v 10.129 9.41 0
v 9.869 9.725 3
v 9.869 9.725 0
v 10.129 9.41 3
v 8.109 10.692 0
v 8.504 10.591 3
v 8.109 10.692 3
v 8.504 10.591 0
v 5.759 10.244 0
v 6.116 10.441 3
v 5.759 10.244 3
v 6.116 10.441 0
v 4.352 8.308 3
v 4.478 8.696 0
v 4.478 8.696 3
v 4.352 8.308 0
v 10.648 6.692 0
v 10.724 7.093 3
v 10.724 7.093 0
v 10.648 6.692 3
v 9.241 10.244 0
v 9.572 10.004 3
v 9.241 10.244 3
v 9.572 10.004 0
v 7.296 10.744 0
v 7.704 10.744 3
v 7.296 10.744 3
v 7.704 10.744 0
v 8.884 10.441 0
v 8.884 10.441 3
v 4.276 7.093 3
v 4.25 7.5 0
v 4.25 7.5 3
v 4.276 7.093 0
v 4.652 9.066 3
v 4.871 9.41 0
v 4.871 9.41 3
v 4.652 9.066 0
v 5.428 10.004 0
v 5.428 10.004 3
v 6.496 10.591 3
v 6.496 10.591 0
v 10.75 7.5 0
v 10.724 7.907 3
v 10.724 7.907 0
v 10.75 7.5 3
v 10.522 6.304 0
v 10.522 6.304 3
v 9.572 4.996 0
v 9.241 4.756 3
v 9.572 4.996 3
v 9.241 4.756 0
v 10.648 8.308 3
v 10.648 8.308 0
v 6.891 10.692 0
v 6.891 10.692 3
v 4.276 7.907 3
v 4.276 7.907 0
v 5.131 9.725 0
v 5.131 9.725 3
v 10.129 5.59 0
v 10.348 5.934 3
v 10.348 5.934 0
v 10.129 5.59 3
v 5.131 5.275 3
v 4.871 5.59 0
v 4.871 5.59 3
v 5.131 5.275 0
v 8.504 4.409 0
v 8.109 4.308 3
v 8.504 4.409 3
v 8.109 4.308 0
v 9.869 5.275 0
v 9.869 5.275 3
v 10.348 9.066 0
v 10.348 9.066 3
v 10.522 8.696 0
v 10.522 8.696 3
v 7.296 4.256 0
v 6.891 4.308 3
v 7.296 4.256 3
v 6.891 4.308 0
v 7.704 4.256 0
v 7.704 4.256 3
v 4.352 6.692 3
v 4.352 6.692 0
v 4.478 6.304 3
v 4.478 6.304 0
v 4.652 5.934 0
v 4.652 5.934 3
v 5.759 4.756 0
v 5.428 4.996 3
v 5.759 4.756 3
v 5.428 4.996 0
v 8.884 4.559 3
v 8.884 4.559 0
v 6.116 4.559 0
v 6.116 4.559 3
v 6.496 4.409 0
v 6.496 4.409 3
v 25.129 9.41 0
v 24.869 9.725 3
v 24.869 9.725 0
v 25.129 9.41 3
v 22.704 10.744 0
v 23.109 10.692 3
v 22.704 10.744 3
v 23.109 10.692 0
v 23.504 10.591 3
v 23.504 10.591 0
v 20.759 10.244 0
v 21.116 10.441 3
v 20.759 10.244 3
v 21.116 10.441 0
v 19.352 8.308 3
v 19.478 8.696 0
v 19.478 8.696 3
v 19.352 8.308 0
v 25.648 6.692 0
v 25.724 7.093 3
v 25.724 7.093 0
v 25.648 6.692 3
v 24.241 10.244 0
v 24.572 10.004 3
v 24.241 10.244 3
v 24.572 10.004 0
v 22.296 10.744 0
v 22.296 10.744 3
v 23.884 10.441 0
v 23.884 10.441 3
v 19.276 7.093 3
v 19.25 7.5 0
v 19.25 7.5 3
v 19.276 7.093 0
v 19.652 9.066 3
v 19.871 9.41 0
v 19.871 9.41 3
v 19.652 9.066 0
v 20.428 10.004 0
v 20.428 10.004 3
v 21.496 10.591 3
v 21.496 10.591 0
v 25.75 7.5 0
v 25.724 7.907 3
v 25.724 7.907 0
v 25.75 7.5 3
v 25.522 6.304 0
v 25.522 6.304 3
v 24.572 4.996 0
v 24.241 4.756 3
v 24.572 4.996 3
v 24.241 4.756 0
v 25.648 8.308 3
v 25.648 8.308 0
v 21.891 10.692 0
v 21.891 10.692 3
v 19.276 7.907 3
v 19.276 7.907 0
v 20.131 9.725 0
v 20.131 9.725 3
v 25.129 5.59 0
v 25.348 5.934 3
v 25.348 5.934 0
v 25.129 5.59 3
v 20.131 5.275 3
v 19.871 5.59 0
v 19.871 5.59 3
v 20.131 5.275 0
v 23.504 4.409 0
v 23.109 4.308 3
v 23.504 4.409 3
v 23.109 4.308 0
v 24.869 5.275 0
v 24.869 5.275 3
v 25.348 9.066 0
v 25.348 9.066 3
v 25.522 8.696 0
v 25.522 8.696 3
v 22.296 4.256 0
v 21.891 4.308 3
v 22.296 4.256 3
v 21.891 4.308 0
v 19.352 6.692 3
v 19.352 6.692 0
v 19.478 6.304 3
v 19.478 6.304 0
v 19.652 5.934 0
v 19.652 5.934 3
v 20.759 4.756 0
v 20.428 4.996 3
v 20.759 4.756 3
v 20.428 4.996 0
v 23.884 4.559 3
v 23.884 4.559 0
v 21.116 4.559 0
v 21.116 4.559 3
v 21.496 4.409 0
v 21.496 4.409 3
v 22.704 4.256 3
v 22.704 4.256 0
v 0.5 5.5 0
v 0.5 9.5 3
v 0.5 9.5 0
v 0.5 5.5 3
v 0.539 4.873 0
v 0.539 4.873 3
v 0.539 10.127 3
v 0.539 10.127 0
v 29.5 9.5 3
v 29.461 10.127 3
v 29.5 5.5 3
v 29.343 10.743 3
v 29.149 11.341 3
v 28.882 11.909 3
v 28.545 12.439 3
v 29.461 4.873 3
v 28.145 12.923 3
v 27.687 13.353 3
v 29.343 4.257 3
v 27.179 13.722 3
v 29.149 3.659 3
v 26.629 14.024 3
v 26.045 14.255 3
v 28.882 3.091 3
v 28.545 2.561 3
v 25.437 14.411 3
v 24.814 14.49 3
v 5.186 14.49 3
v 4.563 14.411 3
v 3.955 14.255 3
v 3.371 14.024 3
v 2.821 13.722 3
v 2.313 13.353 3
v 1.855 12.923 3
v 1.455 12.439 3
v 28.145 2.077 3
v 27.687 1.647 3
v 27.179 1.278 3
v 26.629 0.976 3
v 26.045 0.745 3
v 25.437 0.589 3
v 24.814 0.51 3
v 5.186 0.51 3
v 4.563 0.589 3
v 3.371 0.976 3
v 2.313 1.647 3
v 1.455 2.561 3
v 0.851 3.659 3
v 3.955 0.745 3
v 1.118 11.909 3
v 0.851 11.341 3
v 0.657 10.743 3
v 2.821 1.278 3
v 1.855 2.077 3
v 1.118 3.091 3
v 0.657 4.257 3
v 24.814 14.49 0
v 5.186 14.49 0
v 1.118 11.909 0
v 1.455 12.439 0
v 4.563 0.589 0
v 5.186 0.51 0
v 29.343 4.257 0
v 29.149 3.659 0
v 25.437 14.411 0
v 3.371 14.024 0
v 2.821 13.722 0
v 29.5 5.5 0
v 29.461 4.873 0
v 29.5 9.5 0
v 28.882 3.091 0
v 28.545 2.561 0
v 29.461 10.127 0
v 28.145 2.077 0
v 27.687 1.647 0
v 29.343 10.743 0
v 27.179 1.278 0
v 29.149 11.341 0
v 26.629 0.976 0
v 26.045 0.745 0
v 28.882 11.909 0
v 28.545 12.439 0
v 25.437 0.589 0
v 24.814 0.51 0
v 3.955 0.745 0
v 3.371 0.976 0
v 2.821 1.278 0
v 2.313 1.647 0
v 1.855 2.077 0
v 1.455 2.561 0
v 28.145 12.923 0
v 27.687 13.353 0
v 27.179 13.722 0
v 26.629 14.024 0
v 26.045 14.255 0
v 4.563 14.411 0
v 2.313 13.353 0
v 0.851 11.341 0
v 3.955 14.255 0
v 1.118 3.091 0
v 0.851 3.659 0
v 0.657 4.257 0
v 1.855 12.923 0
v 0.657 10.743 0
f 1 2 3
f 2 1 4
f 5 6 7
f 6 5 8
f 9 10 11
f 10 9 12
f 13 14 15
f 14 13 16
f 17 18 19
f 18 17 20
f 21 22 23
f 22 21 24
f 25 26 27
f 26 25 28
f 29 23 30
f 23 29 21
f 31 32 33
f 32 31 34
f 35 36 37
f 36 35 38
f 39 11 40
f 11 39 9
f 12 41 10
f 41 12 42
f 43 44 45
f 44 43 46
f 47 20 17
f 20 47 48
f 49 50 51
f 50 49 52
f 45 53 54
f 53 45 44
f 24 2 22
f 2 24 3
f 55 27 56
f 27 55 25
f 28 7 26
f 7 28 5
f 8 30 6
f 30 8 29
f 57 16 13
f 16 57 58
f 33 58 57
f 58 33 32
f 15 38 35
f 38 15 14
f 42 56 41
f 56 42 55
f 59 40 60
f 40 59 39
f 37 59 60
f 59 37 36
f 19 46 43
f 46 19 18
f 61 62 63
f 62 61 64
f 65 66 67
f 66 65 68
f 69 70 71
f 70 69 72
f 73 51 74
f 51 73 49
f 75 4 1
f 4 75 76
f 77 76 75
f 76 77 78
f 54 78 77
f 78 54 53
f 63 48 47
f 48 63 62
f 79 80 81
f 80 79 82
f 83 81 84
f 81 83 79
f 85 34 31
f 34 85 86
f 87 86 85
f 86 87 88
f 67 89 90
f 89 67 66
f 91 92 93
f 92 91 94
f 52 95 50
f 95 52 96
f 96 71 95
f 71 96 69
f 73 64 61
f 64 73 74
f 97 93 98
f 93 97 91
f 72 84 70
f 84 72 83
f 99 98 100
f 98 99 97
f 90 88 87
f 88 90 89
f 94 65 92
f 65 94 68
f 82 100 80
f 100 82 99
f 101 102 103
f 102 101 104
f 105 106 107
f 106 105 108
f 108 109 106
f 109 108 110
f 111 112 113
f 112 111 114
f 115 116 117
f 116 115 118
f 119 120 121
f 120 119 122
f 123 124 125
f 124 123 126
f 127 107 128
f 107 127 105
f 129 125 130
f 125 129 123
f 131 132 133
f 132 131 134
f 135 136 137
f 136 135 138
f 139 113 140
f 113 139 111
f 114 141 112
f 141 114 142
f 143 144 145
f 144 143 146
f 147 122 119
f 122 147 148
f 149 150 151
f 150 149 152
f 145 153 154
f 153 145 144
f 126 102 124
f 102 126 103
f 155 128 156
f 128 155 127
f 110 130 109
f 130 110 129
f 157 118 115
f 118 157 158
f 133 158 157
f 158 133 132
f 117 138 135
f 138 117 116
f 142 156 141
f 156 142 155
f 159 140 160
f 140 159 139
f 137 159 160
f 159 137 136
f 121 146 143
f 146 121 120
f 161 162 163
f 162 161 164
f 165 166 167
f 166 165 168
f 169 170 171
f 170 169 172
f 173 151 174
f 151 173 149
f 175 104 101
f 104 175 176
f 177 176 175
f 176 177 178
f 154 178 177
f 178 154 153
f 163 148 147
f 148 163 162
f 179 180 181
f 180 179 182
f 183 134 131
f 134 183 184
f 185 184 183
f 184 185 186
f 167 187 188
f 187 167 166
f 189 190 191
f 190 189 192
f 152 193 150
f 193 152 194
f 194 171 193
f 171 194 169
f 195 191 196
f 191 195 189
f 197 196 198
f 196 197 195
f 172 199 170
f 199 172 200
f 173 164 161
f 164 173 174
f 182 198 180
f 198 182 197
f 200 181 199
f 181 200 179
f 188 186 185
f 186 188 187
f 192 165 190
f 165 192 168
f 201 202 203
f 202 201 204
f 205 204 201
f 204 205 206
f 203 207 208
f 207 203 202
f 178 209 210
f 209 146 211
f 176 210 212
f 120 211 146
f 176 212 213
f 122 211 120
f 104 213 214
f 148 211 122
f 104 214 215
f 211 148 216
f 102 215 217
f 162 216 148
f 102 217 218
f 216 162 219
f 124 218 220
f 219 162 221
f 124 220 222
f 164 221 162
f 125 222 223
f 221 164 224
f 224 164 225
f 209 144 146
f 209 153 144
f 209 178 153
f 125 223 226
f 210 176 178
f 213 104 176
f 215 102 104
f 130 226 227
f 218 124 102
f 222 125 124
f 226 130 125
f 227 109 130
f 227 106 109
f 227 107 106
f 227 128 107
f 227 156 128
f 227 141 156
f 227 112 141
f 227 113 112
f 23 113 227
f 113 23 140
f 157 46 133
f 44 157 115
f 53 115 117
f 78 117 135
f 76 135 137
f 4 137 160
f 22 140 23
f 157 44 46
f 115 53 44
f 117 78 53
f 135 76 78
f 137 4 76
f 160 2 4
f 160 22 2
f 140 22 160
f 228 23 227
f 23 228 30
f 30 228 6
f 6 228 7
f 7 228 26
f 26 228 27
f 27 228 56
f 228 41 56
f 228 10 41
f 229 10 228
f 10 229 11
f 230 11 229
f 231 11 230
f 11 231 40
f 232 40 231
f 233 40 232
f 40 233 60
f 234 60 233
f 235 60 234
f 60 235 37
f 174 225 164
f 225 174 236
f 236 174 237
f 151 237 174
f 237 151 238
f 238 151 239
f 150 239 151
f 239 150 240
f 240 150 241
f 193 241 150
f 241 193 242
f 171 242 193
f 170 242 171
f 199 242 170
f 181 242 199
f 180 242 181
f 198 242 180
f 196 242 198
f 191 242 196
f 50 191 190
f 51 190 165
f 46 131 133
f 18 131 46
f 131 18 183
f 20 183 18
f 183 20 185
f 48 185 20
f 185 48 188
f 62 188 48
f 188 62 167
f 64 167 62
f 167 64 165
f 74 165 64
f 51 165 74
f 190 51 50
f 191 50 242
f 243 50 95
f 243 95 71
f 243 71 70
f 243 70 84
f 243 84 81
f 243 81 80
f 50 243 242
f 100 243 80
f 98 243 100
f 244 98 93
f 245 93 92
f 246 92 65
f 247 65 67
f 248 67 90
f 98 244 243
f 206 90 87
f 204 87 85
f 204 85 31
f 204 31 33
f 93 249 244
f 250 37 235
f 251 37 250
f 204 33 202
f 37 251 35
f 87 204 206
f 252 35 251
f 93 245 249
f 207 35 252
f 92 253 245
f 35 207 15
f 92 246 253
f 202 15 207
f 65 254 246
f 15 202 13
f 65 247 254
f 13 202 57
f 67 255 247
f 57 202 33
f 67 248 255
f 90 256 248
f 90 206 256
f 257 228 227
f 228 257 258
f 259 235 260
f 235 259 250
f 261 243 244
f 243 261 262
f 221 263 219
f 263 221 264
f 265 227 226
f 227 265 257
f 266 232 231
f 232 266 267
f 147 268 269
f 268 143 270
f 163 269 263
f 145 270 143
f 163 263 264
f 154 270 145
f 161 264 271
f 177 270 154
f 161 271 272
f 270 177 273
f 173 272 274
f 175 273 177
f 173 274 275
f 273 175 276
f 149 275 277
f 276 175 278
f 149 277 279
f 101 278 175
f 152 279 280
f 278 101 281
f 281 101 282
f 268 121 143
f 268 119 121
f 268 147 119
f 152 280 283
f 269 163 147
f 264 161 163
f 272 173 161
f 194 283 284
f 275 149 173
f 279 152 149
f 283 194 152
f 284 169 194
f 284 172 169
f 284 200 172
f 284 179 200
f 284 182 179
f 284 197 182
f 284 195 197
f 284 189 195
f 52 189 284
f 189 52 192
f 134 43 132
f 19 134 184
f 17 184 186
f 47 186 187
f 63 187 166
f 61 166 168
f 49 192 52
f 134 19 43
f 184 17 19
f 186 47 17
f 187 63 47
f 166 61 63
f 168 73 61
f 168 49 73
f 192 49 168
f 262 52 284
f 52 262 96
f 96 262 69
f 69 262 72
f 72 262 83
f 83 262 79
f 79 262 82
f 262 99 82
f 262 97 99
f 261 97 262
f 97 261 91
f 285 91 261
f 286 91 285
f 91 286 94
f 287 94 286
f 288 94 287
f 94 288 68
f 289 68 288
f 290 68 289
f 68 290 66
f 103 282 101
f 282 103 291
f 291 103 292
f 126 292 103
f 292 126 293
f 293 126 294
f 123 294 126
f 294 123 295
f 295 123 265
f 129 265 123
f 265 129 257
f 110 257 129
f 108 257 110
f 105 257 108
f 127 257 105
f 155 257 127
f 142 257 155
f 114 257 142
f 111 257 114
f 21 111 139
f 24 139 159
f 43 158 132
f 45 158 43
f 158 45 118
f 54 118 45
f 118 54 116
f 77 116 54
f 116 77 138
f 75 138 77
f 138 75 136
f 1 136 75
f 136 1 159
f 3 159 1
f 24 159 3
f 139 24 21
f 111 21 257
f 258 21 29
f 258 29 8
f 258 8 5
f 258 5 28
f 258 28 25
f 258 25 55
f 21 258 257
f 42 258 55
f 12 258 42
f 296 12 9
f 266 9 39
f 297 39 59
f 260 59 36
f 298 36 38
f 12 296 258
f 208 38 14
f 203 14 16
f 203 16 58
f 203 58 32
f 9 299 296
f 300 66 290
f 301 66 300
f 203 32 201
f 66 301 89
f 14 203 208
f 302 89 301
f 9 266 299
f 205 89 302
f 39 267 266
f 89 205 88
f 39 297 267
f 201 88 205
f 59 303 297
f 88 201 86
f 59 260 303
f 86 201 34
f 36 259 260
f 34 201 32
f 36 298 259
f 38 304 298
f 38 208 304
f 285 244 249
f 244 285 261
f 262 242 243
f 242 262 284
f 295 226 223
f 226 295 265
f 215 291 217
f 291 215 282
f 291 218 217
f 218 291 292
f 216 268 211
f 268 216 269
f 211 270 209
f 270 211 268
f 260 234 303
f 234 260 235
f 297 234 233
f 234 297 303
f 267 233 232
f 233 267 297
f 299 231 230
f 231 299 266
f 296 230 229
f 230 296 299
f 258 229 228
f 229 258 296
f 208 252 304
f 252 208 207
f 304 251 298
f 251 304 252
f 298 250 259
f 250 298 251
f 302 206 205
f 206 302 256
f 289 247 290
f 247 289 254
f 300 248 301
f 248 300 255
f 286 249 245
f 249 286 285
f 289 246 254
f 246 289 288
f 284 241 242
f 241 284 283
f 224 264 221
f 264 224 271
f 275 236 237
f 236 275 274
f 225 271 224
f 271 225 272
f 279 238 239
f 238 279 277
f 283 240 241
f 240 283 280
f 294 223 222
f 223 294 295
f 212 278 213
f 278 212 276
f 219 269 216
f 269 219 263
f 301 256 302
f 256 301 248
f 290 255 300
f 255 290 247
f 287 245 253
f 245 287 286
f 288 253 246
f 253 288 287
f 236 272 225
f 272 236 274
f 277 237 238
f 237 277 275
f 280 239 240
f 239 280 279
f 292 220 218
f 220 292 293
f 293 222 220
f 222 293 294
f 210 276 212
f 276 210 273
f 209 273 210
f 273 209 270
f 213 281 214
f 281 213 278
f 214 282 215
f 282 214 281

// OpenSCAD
// Generated by SolidPython 1.1.3 on 2023-01-09 14:52:32
$fn = 50;


difference() {
	union() {
		translate(v = [15.0000000000, 7.5000000000, 0]) {
			rotate(a = [0, 0, 0]) {
				hull() {
					translate(v = [-9.5000000000, 2.0000000000, 0]) {
						rotate(a = [0, 0, 0]) {
							translate(v = [0, 0, 0]) {
								rotate(a = [0, 0, 0]) {
									cylinder(h = 3, r = 5);
								}
							}
						}
					}
					translate(v = [9.5000000000, 2.0000000000, 0]) {
						rotate(a = [0, 0, 0]) {
							translate(v = [0, 0, 0]) {
								rotate(a = [0, 0, 0]) {
									cylinder(h = 3, r = 5);
								}
							}
						}
					}
					translate(v = [-9.5000000000, -2.0000000000, 0]) {
						rotate(a = [0, 0, 0]) {
							translate(v = [0, 0, 0]) {
								rotate(a = [0, 0, 0]) {
									cylinder(h = 3, r = 5);
								}
							}
						}
					}
					translate(v = [9.5000000000, -2.0000000000, 0]) {
						rotate(a = [0, 0, 0]) {
							translate(v = [0, 0, 0]) {
								rotate(a = [0, 0, 0]) {
									cylinder(h = 3, r = 5);
								}
							}
						}
					}
				}
			}
		}
	}
	union() {
		translate(v = [7.5000000000, 7.5000000000, 0]) {
			rotate(a = [0, 0, 0]) {
				translate(v = [0, 0, -50]) {
					rotate(a = [0, 0, 0]) {
						cylinder(h = 100, r = 3.2500000000);
					}
				}
			}
		}
		translate(v = [22.5000000000, 7.5000000000, 0]) {
			rotate(a = [0, 0, 0]) {
				translate(v = [0, 0, -50]) {
					rotate(a = [0, 0, 0]) {
						cylinder(h = 100, r = 3.2500000000);
					}
				}
			}
		}
	}
}
/***********************************************
*********      SolidPython code:      **********
************************************************
 
from solid import *
import os
import subprocess

import oomB

import opsc_library_gen

mode = "laser"
#mode = "3d_print"

defined_objects = {}

radius_dict = {}
countersunk_dict = {}


def set_mode(m):
    global mode
    mode = m
    radius_dict['M6'] = 6.5/2
    radius_dict['M3'] = 3.3/2
    if mode == "laser":
        radius_dict['M6'] = 6/2
        radius_dict['M3'] = 3/2

    countersunk_dict['M3'] = {}
    countersunk_dict['M3']['little_rad'] = radius_dict['M3']
    countersunk_dict['M3']['big_rad'] = (5.5+0.6)/2
    if mode == "laser":
        countersunk_dict['M3']['big_rad'] = (4.75+0.6)/2
        countersunk_dict['M3']['little_rad'] = (4.75+0.6)/2

    countersunk_dict['M3']['height'] = 1.7


def opsc_make_object(filename, objects, save_type="none",resolution=50, layers = 1, tilediff = 200, mode="laser"):
    set_mode(mode)
    save_type = save_type.lower()
    os.makedirs(os.path.dirname(filename), exist_ok=True)
    final_object = opsc_get_object(objects)
    # Save the final object to the specified filename    
    scad_render_to_file(final_object, filename, file_header='$fn = %s;' % resolution, include_orig_code=True)
    if mode == "laser":
        filename_laser = filename.replace(".scad","-flat.scad")
        scad_render_to_file(getLaser(final_object, layers=layers, tilediff=tilediff), filename_laser, file_header='$fn = %s;' % resolution, include_orig_code=True)
        if save_type == "all":
            saveToAll(filename_laser)
        elif save_type == "dxf":
            saveToDxf(filename_laser)
    if save_type == "all":
        saveToAll(filename)
    elif save_type == "dxf":
        saveToDxf(filename)


def opsc_get_object(objects):
    # Create the solidpython objects
    positive_objects = [get_opsc_item(obj) for obj in objects if obj['type'] == 'positive']
    negative_objects = [get_opsc_item(obj) for obj in objects if obj['type'] == 'negative']
    # Union the positive objects
    positive_object = union()(*positive_objects)
    # Union the negative objects
    negative_object = union()(*negative_objects)
    # Create the final object by subtracting the negative objects from the positive objects
    return difference()(positive_object, negative_object)

def get_opsc_item(params):
    # A dictionary to map radius string values to numerical values
    #radius_dict = {'small': 5, 'medium': 10, 'large': 15}
    # An array of function names for basic shapes
    basic_shapes = ['cube', 'sphere', 'cylinder']
    
    # An array of function names for other shapes
    other_shapes = ['hole', 'slot', 'rounded_rectangle', 'countersunk']
    


    # Convert radius to r if present, and remove radius from the params dictionary
    if 'radius' in params:
        if isinstance(params['radius'], str):
            # Use the radius_dict to map the radius string value to a numerical value
            params['r'] = radius_dict[params['radius']]
        else:
            params['r'] = params['radius']
        del params['radius']
    

    # Check if the object type is a basic shape
    if params['shape'] in basic_shapes:
        # Remove shape and unexpected dictionary values
        allowed_keys = {'size', 'r', 'r1', 'r2', 'd', 'h', 'rw', 'rh', 'dw', 'dh'}
        shape_params = {k: v for k, v in params.items() if k in allowed_keys}

        # Call the corresponding function for the shape parameter, using ** notation to pass the shape_params dictionary as keyword arguments
        return get_opsc_transform(params,globals()[params['shape']](**shape_params))
    
    # If the object type is not a basic shape, check if it's a defined object or one of the other shapes
    elif params['shape'] in other_shapes:
        # Call the corresponding function for the shape parameter, passing the params dictionary as an argument
        p2 = copy.deepcopy(params)
        p2["pos"] = [0,0,0]
        return get_opsc_transform(params,globals()[params['shape']](p2))
    
    # If the object is not a basic shape or a defined object, try to import it from a .scad file
    else:
        obj = defined_objects[params['shape']]
        return get_opsc_transform(params,obj)

def get_opsc_transform(params, solid_obj):
    # Rotate the object based on the 'rot' field in the params dictionary, or the 'rotX', 'rotY', and 'rotZ' fields if 'rot' is not present
    rot = params.get('rot', [])
    if rot:
        rotX, rotY, rotZ = rot
    else:
        rotX = params.get('rotX', 0)
        rotY = params.get('rotY', 0)
        rotZ = params.get('rotZ', 0)
    solid_obj = rotate([rotX, rotY, rotZ])(solid_obj)

    # Translate the object based on the 'pos' field in the params dictionary, or the 'x', 'y', and 'z' fields if 'pos' is not present
    pos = params.get('pos', [])
    if pos:
        x, y, z = pos
    else:
        x = params.get('x', 0)
        y = params.get('y', 0)
        z = params.get('z', 0)
    solid_obj = translate([x, y, z])(solid_obj)
    return solid_obj


import random

def opsc_easy_array(type, shape, repeats, pos_start, shift_arr, **kwargs):
    for i in range(0,3):
        repeats.append(1)
        pos_start.append(0)
        shift_arr.append(0)
    return_objects = []

    for x in range(0,repeats[0]):
        for y in range(0,repeats[1]):
            for z in range(0,repeats[2]):
                return_objects.append(opsc_easy(type, shape, pos=[pos_start[0]+x*shift_arr[0],pos_start[1]+y*shift_arr[1],pos_start[2]+z*shift_arr[2]], **kwargs))
    return return_objects                



def opsc_easy(type, shape, **kwargs):
    obj = {
        'type': type,
        'shape': shape
    }
    for param in ['size', 'r', 'r1', 'r2', 'd', 'h', 'rw', 'rh', 'dw', 'dh', 'pos', 'x', 'y', 'z', 'rot', 'rotX', 'rotY', 'rotZ', "w"]:
        if param in kwargs:
            obj[param] = kwargs[param]
    return obj

def hole(params):
    p2 = copy.deepcopy(params)  
    # Check if the radius is a string and replace it with the corresponding value from the dictionary
    if isinstance(p2['r'], str):
        p2['r'] = radius_dict[p2['r']]
    
    # Set the height to 100 if not specified
    if 'h' not in p2:
        p2['h'] = 100
        p2["pos"] = [0,0,-50]
    p2["center"] = True
    # Create the cylinder object
    p2["shape"] = "cylinder"
    p2["type"] = "positive"

    return get_opsc_item(p2)

import copy

def countersunk(params):
    p2 = copy.deepcopy(params)
    counter_rad = p2['r']
    p2['r'] = radius_dict[p2['r']]
    hp = copy.deepcopy(p2)
    hp["type"] = "positive"
    hp["shape"] = "hole"
    del hp["rot"]
    hol = get_opsc_item(hp)
    
    cp = copy.deepcopy(p2)
    cp["h"] = countersunk_dict[counter_rad]["height"]
    cp["r2"] = countersunk_dict[counter_rad]["little_rad"]
    cp["r1"] = countersunk_dict[counter_rad]["big_rad"]
    del cp["r"]
    del cp["rot"]
    cp["type"] = "positive"
    cp["shape"] = "cylinder"
    cp["pos"] = [0,0,0]

    top = get_opsc_item(cp)
    return union()(hol,top)



def slot(params):  
    p2 = copy.deepcopy(params) 
    if isinstance(p2['r'], str):
        p2['r'] = radius_dict[p2['r']]
    p2["type"] = "positive"
    p2["shape"] = "hole"
    del p2["rot"]
    p2["pos"] = [0,0,0]
    left = copy.deepcopy(p2)
    right = copy.deepcopy(p2)
    left["pos"][0] = p2["w"] / 2 - p2["r"] 
    
    right["pos"][0] = -p2["w"] / 2 + p2["r"] 
    pass
    leftObj = get_opsc_item(left)
    rightObj = get_opsc_item(right)
    return hull()(leftObj, rightObj)

def rounded_rectangle(params):   
    p2 = copy.deepcopy(params) 
    p2["h"] = p2["size"][2]
    p2["pos"] = p2.get("pos", [0, 0, 0]) 
    p2["type"] = "positive"
    p2["shape"] = "hole"
    p2["pos"] = [0,0,0]
    
    if 'rot' in p2:
        del p2["rot"]   
    if 'r' not in p2:
        p2["r"] = 5 
    tl = copy.deepcopy(p2)
    tr = copy.deepcopy(p2)
    bl = copy.deepcopy(p2)
    br = copy.deepcopy(p2)
    tl["pos"][0] = -(p2["size"][0] - p2["r"]*2)/2
    tl["pos"][1] = (p2["size"][1] - p2["r"]*2)/2
    tr["pos"][0] = (p2["size"][0] - p2["r"]*2)/2
    tr["pos"][1] = (p2["size"][1] - p2["r"]*2)/2
    bl["pos"][0] = -(p2["size"][0] - p2["r"]*2)/2
    bl["pos"][1] = -(p2["size"][1] - p2["r"]*2)/2
    br["pos"][0] = (p2["size"][0] - p2["r"]*2)/2
    br["pos"][1] = -(p2["size"][1] - p2["r"]*2)/2
    del tl["size"]
    del tr["size"]
    del bl["size"]
    del br["size"]
    tlo = get_opsc_item(tl)
    tro = get_opsc_item(tr)
    blo = get_opsc_item(bl)
    bro = get_opsc_item(br)    
    return hull()(tlo, tro, blo, bro)



def import_scad_object(filename):
    # Import the .scad file and convert it to a solidpython object
    #filename = "parts"
    obj = import_scad(filename)
    return obj.main()
    


import os
import solid as solidpython

# A dictionary to store the defined objects


def load_scad_objects():
    opsc_library_gen.gen_library(defined_objects)

import random

def test(num_objects):
    objects = []
    for i in range(num_objects):
        # Choose a random shape
        #shape = random.choice(['cube', 'sphere', 'cylinder', 'hole', 'slot', "rounded_rectangle"])
        shape = random.choice(["rounded_rectangle"])

        # Choose a random type
        type = random.choice(['positive', 'negative'])
        
        # Create an empty object dictionary
        obj = {'shape': shape, 'type': type}
        
        # Set shape-specific parameters
        if obj['shape'] in ['cube']:
            obj['size'] =  [random.uniform(5, 15), random.uniform(5, 15), random.uniform(5, 15)]
        if obj['shape'] in ['rounded_rectangle']:
            obj['size'] =  [random.uniform(5, 15), random.uniform(5, 15), random.uniform(5, 15)]
            obj['r'] = random.uniform(0.5, 5)
        elif obj['shape'] == 'sphere':
            obj['r'] = random.uniform(5, 15)
        elif obj['shape'] in ['cylinder', 'hole']:
            obj['r'] = random.uniform(0.5, 5)
            obj['h'] = random.uniform(5, 15)
        elif obj['shape'] == 'slot':
            obj['r'] = random.uniform(0.5, 5)
            obj['h'] = random.uniform(5, 15)
            obj['w'] = random.uniform(5, 15)
        
        # Set a random position and rotation
        obj['pos'] = [random.uniform(-20, 20), random.uniform(-20, 20), random.uniform(-20, 20)]
        obj['rot'] = [random.uniform(-180, 180), random.uniform(-180, 180), random.uniform(-180, 180)]
        
        # Add the object to the list
        objects.append(obj)
    return objects

####### old file saving
def saveToAll(fileIn):
    saveToDxf(fileIn)
    saveToPng(fileIn)
    saveToStl(fileIn)
    saveToSvg(fileIn)

def saveToDxf(fileIn, fileOut="", copy_to_laser=True):
    if fileOut == "":
        fileOut = fileIn.replace(".scad",".dxf")
    saveToFile(fileIn, fileOut)


    
def saveToPng(fileIn, fileOut="",extra="--render"):
    if fileOut == "":
        fileOut = fileIn.replace(".scad",".png")
    saveToFile(fileIn, fileOut)

def saveToStl(fileIn, fileOut=""):
    if fileOut == "":
        fileOut = fileIn.replace(".scad",".stl")
    saveToFile(fileIn, fileOut)
    
def saveToSvg(fileIn, fileOut=""):
    if fileOut == "":
        fileOut = fileIn.replace(".scad",".svg")
    saveToFile(fileIn, fileOut)

def saveToFile(fileIn, fileOut,extra=""):
    #extra = extra + " --colorscheme Tomorrow"

    launchStr = 'openscad -o "' + fileOut + '"' + extra + ' "' + fileIn + '"'
    if ".png" in fileOut:
        launchStr = launchStr + " --render"
    print("            saveToFile launch string: " + launchStr)
    subprocess.run(launchStr)
    x=0

def getLaser(final_object,start=1.5,layers=1,thickness=3,tilediff=200):
        rv= []

        for x in range(layers):
            rv.append(translate([0,x*tilediff,0])(
                    projection()(
                        intersection()(translate([-500,-500,start+x*thickness])(cube(size=[1000,1000,0.1])),
                            final_object
                        )
                    )
            )
            )
            
        return union()(rv)

set_mode("laser")
load_scad_objects() 
 
************************************************/
